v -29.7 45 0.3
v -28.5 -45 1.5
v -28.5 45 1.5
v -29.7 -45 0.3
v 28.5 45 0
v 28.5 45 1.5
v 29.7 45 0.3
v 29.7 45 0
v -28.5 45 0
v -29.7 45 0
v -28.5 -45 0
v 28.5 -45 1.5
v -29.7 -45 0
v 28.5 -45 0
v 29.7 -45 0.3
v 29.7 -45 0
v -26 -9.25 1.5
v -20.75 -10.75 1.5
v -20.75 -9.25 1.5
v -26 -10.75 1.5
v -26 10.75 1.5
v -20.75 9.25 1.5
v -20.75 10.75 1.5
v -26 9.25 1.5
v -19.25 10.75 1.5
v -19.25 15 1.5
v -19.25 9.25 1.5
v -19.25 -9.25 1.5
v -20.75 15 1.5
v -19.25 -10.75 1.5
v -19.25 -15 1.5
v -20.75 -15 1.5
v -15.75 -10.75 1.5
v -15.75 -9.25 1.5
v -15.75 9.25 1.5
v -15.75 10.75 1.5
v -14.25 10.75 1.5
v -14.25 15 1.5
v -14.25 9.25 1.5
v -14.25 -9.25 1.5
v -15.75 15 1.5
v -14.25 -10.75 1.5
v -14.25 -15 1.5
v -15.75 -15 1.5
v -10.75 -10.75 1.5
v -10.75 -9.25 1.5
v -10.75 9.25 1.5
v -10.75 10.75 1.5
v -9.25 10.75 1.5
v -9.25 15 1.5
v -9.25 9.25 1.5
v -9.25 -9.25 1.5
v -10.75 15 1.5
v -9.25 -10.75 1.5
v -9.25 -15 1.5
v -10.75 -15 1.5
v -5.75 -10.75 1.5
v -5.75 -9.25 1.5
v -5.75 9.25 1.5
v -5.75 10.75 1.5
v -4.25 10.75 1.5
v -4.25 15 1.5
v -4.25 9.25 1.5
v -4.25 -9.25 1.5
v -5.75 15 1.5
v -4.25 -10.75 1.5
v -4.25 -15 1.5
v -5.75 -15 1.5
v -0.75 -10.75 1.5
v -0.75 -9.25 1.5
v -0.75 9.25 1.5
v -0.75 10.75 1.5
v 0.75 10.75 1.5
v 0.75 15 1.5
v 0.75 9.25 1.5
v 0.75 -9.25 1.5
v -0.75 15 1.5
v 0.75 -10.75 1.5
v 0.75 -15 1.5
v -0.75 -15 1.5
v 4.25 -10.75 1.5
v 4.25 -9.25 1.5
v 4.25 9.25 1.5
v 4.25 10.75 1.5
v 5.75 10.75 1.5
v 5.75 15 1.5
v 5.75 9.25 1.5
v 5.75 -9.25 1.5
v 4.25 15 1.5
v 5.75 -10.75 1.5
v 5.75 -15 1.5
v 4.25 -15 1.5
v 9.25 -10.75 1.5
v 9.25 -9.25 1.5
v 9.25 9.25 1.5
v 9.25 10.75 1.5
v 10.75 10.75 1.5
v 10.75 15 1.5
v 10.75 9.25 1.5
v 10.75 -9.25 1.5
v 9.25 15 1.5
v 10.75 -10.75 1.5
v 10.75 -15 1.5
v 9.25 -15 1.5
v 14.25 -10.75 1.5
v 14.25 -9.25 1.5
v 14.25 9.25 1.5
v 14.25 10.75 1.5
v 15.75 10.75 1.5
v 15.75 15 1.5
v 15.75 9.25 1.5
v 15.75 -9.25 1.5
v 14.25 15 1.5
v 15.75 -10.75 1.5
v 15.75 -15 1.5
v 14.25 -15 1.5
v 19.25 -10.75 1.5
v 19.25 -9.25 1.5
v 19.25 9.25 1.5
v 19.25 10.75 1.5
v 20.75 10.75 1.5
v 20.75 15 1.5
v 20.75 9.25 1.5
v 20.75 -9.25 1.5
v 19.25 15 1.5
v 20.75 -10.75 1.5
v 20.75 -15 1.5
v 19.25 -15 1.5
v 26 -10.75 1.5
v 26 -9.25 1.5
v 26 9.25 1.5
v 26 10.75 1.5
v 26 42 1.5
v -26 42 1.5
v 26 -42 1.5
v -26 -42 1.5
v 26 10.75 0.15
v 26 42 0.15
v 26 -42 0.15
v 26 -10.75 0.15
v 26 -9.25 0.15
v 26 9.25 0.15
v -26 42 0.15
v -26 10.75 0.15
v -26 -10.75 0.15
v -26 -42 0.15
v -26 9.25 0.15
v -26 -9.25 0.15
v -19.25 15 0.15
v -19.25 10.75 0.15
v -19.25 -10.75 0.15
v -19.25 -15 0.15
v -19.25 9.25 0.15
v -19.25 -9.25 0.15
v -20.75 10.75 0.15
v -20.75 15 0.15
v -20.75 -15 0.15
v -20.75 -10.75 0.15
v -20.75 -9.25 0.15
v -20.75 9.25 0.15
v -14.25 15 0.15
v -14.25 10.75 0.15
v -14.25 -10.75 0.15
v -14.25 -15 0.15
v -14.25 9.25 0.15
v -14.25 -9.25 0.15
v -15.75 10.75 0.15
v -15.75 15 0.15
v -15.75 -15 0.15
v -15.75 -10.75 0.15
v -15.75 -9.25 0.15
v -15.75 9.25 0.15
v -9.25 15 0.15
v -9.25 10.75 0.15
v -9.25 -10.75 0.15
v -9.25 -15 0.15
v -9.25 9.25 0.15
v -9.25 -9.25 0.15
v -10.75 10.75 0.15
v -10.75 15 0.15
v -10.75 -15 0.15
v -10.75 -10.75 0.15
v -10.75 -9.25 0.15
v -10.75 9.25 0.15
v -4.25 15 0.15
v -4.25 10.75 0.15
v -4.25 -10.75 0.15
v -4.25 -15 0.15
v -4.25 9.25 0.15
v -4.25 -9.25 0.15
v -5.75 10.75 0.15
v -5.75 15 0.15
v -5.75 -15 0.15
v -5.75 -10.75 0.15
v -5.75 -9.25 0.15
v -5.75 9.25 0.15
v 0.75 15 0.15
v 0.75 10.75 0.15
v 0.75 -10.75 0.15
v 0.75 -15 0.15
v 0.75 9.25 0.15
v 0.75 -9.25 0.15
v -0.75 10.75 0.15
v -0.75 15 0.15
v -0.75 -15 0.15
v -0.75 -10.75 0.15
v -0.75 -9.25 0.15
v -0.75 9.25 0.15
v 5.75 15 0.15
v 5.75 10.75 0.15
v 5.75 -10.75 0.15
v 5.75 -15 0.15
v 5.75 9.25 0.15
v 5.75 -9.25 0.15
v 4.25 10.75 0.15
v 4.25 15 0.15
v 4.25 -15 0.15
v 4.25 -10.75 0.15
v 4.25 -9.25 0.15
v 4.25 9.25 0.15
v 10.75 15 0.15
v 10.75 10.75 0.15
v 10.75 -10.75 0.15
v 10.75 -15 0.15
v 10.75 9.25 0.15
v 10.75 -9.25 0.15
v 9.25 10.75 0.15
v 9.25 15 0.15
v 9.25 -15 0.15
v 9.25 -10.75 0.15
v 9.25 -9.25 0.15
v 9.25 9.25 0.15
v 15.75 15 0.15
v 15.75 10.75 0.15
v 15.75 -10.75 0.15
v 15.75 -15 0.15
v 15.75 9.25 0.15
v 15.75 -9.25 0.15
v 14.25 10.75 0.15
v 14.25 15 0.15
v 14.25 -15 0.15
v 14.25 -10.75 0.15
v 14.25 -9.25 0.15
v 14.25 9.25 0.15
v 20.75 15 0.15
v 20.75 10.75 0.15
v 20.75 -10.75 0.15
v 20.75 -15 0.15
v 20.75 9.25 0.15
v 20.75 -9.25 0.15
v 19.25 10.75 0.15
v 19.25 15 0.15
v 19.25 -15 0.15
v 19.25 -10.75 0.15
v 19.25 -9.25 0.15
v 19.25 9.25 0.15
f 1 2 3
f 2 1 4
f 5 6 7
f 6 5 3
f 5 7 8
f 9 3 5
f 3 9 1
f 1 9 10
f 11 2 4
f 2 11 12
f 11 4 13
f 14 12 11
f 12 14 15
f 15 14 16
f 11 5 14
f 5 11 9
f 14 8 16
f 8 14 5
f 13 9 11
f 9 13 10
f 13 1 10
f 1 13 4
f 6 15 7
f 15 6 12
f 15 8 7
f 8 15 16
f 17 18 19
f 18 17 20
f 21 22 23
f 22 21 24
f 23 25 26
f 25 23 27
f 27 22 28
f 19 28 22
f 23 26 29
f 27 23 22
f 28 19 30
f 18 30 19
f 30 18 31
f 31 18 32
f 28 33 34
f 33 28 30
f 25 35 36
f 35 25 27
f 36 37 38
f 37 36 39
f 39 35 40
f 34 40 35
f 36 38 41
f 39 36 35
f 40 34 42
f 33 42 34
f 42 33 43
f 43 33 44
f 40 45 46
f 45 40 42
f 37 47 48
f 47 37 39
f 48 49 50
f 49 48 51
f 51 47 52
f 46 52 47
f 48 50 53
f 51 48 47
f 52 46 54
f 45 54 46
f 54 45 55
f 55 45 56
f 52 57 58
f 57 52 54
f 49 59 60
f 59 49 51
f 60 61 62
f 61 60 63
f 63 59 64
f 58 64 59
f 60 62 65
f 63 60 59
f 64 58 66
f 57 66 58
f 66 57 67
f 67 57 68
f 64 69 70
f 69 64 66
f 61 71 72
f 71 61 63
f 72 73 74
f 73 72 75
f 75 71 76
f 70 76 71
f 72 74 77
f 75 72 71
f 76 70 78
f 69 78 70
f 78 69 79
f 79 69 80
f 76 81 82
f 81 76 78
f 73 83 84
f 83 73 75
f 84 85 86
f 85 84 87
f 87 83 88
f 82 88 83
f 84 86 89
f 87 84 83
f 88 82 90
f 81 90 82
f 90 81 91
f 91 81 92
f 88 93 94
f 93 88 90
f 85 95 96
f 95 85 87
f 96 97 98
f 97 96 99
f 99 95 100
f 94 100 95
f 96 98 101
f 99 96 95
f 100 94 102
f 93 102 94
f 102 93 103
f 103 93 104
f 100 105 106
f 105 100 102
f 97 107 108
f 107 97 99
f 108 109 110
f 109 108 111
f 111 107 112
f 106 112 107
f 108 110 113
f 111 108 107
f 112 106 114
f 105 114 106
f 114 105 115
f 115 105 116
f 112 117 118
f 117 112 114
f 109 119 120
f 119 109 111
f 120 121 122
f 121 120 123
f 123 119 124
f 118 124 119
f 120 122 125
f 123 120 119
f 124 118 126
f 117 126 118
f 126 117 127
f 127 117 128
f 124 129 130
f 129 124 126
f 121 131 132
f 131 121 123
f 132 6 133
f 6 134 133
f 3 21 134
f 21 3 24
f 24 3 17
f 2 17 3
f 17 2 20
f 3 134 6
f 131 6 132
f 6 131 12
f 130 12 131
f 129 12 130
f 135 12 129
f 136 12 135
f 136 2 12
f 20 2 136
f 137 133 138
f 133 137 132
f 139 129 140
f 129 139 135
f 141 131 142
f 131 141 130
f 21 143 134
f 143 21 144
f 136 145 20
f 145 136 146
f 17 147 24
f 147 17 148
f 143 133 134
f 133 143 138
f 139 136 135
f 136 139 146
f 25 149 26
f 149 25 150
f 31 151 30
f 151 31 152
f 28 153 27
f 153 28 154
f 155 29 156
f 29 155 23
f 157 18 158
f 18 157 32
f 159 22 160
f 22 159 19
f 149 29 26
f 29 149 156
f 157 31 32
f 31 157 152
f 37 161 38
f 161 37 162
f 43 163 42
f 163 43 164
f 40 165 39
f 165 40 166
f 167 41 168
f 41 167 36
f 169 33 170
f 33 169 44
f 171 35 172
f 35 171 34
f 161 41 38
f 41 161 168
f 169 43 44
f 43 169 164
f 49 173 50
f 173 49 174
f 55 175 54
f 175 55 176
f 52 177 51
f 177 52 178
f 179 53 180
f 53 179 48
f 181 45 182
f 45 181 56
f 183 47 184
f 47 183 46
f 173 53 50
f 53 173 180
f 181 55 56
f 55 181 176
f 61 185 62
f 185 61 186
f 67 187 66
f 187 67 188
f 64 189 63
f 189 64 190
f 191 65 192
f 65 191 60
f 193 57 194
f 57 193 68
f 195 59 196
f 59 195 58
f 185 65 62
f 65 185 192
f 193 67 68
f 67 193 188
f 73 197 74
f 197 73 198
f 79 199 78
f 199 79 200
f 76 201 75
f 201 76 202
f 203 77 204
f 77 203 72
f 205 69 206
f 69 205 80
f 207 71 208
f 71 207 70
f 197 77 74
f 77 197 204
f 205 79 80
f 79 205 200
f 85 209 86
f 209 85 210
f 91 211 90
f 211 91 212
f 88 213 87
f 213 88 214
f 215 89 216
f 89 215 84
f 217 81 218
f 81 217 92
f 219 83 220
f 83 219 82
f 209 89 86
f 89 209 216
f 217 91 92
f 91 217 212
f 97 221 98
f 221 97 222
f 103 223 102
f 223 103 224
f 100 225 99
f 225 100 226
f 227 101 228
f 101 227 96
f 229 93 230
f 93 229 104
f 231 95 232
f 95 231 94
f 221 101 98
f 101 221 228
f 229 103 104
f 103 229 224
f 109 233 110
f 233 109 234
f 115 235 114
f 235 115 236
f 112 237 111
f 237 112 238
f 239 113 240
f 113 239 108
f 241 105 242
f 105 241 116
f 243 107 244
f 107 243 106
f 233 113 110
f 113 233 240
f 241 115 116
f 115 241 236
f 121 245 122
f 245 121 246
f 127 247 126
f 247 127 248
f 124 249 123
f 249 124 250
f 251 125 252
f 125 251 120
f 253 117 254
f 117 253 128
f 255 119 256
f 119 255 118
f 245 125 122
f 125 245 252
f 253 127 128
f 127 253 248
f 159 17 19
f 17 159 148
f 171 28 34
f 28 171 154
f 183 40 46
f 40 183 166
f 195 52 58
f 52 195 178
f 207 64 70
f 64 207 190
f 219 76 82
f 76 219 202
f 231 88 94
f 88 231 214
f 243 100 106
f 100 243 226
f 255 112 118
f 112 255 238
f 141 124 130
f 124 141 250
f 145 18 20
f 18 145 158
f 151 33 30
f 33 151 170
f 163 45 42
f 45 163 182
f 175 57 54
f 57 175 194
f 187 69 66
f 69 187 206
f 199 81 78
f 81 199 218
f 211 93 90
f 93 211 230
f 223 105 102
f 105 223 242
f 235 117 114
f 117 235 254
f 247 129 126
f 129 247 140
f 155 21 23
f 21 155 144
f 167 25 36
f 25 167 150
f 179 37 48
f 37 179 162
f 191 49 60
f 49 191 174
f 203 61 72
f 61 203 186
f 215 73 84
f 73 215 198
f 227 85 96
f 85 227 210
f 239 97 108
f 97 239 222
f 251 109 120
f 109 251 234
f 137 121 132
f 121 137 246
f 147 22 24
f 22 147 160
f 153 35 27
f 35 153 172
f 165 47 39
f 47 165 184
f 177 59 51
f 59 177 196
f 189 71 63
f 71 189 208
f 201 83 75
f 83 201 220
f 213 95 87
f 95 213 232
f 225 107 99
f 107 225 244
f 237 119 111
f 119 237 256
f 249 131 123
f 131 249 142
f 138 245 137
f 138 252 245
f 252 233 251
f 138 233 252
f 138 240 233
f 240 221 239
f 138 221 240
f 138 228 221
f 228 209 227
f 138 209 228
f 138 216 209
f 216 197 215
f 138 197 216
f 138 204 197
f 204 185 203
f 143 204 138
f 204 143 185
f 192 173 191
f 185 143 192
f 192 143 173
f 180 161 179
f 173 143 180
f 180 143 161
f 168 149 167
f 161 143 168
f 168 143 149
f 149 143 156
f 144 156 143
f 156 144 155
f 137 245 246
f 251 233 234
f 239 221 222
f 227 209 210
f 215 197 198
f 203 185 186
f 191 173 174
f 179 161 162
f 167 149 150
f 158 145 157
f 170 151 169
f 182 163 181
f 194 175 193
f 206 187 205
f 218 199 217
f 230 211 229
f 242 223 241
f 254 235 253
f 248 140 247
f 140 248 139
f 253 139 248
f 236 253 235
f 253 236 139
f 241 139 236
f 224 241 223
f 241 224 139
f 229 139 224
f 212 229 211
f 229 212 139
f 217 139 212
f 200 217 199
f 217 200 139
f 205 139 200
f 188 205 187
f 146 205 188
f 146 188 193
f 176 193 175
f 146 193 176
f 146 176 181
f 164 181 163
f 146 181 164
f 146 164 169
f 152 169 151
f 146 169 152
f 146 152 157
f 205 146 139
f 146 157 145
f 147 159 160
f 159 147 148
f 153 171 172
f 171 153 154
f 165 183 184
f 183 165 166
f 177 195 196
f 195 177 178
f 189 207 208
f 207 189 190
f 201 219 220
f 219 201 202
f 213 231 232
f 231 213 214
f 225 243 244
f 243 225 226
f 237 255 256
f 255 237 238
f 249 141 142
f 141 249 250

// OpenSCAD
W=64;
W2=100;
H=90;
T=1.5;
B=4;
Q=7;
H1=7;
HR=12;

color("white")
backing();
color("brown")
theactualpanel();

module backing() {
    cube_center([W-H1,H,0.15]);
}

module theactualpanel() {
    
    // the pointed edges that go into groove
    for(s=[-1:2:1])
        scale([s,1,1])
        translate([(W-H1)/2,0,])
        difference() {
            rotate([0,45,0])
            cube([1.5*sqrt(2),H,1.5*sqrt(2)],center=true);
            translate([0,0,-1.5])
            cube([3,H+1,3],center=true);
            translate([2.7,0,0])
            cube([3,H+1,3],center=true);
            translate([-2.7,0,0])
            cube([3,H+1,3],center=true);
    }
    
    intersection() {
        // clips the following to dimensions just in case
        cube_center([W-H1,H,1.5]);
        // of this:
        union() {
            // border
            difference() {
                cube_center([W,H,1.5]);
                translate([0,0,-1])
                cube_center([W-3*B,H-1.5*B,10]);
            }
            
            for(x=[-20:5:20])
            translate([x,0,0])
            cube_center([T,30,1.5]);
                        
            translate([0,-10,0])
            cube_center([W,T,1.5]);
            
            translate([0,10,0])
            cube_center([W,T,1.5]);
            
        }
    }
}

module cube_center(dims,r=0) {
    if(r==0) {
        translate([-dims[0]/2, -dims[1]/2, 0])
        cube(dims);
    } else {
        
        minkowski() {
            translate([-dims[0]/2+r, -dims[1]/2+r, 0])
            cube([dims[0]-2*r,dims[1]-2*r,dims[2]]);
            cylinder(r=r,h=0.00001,$fn=32);
        }
    }
}
